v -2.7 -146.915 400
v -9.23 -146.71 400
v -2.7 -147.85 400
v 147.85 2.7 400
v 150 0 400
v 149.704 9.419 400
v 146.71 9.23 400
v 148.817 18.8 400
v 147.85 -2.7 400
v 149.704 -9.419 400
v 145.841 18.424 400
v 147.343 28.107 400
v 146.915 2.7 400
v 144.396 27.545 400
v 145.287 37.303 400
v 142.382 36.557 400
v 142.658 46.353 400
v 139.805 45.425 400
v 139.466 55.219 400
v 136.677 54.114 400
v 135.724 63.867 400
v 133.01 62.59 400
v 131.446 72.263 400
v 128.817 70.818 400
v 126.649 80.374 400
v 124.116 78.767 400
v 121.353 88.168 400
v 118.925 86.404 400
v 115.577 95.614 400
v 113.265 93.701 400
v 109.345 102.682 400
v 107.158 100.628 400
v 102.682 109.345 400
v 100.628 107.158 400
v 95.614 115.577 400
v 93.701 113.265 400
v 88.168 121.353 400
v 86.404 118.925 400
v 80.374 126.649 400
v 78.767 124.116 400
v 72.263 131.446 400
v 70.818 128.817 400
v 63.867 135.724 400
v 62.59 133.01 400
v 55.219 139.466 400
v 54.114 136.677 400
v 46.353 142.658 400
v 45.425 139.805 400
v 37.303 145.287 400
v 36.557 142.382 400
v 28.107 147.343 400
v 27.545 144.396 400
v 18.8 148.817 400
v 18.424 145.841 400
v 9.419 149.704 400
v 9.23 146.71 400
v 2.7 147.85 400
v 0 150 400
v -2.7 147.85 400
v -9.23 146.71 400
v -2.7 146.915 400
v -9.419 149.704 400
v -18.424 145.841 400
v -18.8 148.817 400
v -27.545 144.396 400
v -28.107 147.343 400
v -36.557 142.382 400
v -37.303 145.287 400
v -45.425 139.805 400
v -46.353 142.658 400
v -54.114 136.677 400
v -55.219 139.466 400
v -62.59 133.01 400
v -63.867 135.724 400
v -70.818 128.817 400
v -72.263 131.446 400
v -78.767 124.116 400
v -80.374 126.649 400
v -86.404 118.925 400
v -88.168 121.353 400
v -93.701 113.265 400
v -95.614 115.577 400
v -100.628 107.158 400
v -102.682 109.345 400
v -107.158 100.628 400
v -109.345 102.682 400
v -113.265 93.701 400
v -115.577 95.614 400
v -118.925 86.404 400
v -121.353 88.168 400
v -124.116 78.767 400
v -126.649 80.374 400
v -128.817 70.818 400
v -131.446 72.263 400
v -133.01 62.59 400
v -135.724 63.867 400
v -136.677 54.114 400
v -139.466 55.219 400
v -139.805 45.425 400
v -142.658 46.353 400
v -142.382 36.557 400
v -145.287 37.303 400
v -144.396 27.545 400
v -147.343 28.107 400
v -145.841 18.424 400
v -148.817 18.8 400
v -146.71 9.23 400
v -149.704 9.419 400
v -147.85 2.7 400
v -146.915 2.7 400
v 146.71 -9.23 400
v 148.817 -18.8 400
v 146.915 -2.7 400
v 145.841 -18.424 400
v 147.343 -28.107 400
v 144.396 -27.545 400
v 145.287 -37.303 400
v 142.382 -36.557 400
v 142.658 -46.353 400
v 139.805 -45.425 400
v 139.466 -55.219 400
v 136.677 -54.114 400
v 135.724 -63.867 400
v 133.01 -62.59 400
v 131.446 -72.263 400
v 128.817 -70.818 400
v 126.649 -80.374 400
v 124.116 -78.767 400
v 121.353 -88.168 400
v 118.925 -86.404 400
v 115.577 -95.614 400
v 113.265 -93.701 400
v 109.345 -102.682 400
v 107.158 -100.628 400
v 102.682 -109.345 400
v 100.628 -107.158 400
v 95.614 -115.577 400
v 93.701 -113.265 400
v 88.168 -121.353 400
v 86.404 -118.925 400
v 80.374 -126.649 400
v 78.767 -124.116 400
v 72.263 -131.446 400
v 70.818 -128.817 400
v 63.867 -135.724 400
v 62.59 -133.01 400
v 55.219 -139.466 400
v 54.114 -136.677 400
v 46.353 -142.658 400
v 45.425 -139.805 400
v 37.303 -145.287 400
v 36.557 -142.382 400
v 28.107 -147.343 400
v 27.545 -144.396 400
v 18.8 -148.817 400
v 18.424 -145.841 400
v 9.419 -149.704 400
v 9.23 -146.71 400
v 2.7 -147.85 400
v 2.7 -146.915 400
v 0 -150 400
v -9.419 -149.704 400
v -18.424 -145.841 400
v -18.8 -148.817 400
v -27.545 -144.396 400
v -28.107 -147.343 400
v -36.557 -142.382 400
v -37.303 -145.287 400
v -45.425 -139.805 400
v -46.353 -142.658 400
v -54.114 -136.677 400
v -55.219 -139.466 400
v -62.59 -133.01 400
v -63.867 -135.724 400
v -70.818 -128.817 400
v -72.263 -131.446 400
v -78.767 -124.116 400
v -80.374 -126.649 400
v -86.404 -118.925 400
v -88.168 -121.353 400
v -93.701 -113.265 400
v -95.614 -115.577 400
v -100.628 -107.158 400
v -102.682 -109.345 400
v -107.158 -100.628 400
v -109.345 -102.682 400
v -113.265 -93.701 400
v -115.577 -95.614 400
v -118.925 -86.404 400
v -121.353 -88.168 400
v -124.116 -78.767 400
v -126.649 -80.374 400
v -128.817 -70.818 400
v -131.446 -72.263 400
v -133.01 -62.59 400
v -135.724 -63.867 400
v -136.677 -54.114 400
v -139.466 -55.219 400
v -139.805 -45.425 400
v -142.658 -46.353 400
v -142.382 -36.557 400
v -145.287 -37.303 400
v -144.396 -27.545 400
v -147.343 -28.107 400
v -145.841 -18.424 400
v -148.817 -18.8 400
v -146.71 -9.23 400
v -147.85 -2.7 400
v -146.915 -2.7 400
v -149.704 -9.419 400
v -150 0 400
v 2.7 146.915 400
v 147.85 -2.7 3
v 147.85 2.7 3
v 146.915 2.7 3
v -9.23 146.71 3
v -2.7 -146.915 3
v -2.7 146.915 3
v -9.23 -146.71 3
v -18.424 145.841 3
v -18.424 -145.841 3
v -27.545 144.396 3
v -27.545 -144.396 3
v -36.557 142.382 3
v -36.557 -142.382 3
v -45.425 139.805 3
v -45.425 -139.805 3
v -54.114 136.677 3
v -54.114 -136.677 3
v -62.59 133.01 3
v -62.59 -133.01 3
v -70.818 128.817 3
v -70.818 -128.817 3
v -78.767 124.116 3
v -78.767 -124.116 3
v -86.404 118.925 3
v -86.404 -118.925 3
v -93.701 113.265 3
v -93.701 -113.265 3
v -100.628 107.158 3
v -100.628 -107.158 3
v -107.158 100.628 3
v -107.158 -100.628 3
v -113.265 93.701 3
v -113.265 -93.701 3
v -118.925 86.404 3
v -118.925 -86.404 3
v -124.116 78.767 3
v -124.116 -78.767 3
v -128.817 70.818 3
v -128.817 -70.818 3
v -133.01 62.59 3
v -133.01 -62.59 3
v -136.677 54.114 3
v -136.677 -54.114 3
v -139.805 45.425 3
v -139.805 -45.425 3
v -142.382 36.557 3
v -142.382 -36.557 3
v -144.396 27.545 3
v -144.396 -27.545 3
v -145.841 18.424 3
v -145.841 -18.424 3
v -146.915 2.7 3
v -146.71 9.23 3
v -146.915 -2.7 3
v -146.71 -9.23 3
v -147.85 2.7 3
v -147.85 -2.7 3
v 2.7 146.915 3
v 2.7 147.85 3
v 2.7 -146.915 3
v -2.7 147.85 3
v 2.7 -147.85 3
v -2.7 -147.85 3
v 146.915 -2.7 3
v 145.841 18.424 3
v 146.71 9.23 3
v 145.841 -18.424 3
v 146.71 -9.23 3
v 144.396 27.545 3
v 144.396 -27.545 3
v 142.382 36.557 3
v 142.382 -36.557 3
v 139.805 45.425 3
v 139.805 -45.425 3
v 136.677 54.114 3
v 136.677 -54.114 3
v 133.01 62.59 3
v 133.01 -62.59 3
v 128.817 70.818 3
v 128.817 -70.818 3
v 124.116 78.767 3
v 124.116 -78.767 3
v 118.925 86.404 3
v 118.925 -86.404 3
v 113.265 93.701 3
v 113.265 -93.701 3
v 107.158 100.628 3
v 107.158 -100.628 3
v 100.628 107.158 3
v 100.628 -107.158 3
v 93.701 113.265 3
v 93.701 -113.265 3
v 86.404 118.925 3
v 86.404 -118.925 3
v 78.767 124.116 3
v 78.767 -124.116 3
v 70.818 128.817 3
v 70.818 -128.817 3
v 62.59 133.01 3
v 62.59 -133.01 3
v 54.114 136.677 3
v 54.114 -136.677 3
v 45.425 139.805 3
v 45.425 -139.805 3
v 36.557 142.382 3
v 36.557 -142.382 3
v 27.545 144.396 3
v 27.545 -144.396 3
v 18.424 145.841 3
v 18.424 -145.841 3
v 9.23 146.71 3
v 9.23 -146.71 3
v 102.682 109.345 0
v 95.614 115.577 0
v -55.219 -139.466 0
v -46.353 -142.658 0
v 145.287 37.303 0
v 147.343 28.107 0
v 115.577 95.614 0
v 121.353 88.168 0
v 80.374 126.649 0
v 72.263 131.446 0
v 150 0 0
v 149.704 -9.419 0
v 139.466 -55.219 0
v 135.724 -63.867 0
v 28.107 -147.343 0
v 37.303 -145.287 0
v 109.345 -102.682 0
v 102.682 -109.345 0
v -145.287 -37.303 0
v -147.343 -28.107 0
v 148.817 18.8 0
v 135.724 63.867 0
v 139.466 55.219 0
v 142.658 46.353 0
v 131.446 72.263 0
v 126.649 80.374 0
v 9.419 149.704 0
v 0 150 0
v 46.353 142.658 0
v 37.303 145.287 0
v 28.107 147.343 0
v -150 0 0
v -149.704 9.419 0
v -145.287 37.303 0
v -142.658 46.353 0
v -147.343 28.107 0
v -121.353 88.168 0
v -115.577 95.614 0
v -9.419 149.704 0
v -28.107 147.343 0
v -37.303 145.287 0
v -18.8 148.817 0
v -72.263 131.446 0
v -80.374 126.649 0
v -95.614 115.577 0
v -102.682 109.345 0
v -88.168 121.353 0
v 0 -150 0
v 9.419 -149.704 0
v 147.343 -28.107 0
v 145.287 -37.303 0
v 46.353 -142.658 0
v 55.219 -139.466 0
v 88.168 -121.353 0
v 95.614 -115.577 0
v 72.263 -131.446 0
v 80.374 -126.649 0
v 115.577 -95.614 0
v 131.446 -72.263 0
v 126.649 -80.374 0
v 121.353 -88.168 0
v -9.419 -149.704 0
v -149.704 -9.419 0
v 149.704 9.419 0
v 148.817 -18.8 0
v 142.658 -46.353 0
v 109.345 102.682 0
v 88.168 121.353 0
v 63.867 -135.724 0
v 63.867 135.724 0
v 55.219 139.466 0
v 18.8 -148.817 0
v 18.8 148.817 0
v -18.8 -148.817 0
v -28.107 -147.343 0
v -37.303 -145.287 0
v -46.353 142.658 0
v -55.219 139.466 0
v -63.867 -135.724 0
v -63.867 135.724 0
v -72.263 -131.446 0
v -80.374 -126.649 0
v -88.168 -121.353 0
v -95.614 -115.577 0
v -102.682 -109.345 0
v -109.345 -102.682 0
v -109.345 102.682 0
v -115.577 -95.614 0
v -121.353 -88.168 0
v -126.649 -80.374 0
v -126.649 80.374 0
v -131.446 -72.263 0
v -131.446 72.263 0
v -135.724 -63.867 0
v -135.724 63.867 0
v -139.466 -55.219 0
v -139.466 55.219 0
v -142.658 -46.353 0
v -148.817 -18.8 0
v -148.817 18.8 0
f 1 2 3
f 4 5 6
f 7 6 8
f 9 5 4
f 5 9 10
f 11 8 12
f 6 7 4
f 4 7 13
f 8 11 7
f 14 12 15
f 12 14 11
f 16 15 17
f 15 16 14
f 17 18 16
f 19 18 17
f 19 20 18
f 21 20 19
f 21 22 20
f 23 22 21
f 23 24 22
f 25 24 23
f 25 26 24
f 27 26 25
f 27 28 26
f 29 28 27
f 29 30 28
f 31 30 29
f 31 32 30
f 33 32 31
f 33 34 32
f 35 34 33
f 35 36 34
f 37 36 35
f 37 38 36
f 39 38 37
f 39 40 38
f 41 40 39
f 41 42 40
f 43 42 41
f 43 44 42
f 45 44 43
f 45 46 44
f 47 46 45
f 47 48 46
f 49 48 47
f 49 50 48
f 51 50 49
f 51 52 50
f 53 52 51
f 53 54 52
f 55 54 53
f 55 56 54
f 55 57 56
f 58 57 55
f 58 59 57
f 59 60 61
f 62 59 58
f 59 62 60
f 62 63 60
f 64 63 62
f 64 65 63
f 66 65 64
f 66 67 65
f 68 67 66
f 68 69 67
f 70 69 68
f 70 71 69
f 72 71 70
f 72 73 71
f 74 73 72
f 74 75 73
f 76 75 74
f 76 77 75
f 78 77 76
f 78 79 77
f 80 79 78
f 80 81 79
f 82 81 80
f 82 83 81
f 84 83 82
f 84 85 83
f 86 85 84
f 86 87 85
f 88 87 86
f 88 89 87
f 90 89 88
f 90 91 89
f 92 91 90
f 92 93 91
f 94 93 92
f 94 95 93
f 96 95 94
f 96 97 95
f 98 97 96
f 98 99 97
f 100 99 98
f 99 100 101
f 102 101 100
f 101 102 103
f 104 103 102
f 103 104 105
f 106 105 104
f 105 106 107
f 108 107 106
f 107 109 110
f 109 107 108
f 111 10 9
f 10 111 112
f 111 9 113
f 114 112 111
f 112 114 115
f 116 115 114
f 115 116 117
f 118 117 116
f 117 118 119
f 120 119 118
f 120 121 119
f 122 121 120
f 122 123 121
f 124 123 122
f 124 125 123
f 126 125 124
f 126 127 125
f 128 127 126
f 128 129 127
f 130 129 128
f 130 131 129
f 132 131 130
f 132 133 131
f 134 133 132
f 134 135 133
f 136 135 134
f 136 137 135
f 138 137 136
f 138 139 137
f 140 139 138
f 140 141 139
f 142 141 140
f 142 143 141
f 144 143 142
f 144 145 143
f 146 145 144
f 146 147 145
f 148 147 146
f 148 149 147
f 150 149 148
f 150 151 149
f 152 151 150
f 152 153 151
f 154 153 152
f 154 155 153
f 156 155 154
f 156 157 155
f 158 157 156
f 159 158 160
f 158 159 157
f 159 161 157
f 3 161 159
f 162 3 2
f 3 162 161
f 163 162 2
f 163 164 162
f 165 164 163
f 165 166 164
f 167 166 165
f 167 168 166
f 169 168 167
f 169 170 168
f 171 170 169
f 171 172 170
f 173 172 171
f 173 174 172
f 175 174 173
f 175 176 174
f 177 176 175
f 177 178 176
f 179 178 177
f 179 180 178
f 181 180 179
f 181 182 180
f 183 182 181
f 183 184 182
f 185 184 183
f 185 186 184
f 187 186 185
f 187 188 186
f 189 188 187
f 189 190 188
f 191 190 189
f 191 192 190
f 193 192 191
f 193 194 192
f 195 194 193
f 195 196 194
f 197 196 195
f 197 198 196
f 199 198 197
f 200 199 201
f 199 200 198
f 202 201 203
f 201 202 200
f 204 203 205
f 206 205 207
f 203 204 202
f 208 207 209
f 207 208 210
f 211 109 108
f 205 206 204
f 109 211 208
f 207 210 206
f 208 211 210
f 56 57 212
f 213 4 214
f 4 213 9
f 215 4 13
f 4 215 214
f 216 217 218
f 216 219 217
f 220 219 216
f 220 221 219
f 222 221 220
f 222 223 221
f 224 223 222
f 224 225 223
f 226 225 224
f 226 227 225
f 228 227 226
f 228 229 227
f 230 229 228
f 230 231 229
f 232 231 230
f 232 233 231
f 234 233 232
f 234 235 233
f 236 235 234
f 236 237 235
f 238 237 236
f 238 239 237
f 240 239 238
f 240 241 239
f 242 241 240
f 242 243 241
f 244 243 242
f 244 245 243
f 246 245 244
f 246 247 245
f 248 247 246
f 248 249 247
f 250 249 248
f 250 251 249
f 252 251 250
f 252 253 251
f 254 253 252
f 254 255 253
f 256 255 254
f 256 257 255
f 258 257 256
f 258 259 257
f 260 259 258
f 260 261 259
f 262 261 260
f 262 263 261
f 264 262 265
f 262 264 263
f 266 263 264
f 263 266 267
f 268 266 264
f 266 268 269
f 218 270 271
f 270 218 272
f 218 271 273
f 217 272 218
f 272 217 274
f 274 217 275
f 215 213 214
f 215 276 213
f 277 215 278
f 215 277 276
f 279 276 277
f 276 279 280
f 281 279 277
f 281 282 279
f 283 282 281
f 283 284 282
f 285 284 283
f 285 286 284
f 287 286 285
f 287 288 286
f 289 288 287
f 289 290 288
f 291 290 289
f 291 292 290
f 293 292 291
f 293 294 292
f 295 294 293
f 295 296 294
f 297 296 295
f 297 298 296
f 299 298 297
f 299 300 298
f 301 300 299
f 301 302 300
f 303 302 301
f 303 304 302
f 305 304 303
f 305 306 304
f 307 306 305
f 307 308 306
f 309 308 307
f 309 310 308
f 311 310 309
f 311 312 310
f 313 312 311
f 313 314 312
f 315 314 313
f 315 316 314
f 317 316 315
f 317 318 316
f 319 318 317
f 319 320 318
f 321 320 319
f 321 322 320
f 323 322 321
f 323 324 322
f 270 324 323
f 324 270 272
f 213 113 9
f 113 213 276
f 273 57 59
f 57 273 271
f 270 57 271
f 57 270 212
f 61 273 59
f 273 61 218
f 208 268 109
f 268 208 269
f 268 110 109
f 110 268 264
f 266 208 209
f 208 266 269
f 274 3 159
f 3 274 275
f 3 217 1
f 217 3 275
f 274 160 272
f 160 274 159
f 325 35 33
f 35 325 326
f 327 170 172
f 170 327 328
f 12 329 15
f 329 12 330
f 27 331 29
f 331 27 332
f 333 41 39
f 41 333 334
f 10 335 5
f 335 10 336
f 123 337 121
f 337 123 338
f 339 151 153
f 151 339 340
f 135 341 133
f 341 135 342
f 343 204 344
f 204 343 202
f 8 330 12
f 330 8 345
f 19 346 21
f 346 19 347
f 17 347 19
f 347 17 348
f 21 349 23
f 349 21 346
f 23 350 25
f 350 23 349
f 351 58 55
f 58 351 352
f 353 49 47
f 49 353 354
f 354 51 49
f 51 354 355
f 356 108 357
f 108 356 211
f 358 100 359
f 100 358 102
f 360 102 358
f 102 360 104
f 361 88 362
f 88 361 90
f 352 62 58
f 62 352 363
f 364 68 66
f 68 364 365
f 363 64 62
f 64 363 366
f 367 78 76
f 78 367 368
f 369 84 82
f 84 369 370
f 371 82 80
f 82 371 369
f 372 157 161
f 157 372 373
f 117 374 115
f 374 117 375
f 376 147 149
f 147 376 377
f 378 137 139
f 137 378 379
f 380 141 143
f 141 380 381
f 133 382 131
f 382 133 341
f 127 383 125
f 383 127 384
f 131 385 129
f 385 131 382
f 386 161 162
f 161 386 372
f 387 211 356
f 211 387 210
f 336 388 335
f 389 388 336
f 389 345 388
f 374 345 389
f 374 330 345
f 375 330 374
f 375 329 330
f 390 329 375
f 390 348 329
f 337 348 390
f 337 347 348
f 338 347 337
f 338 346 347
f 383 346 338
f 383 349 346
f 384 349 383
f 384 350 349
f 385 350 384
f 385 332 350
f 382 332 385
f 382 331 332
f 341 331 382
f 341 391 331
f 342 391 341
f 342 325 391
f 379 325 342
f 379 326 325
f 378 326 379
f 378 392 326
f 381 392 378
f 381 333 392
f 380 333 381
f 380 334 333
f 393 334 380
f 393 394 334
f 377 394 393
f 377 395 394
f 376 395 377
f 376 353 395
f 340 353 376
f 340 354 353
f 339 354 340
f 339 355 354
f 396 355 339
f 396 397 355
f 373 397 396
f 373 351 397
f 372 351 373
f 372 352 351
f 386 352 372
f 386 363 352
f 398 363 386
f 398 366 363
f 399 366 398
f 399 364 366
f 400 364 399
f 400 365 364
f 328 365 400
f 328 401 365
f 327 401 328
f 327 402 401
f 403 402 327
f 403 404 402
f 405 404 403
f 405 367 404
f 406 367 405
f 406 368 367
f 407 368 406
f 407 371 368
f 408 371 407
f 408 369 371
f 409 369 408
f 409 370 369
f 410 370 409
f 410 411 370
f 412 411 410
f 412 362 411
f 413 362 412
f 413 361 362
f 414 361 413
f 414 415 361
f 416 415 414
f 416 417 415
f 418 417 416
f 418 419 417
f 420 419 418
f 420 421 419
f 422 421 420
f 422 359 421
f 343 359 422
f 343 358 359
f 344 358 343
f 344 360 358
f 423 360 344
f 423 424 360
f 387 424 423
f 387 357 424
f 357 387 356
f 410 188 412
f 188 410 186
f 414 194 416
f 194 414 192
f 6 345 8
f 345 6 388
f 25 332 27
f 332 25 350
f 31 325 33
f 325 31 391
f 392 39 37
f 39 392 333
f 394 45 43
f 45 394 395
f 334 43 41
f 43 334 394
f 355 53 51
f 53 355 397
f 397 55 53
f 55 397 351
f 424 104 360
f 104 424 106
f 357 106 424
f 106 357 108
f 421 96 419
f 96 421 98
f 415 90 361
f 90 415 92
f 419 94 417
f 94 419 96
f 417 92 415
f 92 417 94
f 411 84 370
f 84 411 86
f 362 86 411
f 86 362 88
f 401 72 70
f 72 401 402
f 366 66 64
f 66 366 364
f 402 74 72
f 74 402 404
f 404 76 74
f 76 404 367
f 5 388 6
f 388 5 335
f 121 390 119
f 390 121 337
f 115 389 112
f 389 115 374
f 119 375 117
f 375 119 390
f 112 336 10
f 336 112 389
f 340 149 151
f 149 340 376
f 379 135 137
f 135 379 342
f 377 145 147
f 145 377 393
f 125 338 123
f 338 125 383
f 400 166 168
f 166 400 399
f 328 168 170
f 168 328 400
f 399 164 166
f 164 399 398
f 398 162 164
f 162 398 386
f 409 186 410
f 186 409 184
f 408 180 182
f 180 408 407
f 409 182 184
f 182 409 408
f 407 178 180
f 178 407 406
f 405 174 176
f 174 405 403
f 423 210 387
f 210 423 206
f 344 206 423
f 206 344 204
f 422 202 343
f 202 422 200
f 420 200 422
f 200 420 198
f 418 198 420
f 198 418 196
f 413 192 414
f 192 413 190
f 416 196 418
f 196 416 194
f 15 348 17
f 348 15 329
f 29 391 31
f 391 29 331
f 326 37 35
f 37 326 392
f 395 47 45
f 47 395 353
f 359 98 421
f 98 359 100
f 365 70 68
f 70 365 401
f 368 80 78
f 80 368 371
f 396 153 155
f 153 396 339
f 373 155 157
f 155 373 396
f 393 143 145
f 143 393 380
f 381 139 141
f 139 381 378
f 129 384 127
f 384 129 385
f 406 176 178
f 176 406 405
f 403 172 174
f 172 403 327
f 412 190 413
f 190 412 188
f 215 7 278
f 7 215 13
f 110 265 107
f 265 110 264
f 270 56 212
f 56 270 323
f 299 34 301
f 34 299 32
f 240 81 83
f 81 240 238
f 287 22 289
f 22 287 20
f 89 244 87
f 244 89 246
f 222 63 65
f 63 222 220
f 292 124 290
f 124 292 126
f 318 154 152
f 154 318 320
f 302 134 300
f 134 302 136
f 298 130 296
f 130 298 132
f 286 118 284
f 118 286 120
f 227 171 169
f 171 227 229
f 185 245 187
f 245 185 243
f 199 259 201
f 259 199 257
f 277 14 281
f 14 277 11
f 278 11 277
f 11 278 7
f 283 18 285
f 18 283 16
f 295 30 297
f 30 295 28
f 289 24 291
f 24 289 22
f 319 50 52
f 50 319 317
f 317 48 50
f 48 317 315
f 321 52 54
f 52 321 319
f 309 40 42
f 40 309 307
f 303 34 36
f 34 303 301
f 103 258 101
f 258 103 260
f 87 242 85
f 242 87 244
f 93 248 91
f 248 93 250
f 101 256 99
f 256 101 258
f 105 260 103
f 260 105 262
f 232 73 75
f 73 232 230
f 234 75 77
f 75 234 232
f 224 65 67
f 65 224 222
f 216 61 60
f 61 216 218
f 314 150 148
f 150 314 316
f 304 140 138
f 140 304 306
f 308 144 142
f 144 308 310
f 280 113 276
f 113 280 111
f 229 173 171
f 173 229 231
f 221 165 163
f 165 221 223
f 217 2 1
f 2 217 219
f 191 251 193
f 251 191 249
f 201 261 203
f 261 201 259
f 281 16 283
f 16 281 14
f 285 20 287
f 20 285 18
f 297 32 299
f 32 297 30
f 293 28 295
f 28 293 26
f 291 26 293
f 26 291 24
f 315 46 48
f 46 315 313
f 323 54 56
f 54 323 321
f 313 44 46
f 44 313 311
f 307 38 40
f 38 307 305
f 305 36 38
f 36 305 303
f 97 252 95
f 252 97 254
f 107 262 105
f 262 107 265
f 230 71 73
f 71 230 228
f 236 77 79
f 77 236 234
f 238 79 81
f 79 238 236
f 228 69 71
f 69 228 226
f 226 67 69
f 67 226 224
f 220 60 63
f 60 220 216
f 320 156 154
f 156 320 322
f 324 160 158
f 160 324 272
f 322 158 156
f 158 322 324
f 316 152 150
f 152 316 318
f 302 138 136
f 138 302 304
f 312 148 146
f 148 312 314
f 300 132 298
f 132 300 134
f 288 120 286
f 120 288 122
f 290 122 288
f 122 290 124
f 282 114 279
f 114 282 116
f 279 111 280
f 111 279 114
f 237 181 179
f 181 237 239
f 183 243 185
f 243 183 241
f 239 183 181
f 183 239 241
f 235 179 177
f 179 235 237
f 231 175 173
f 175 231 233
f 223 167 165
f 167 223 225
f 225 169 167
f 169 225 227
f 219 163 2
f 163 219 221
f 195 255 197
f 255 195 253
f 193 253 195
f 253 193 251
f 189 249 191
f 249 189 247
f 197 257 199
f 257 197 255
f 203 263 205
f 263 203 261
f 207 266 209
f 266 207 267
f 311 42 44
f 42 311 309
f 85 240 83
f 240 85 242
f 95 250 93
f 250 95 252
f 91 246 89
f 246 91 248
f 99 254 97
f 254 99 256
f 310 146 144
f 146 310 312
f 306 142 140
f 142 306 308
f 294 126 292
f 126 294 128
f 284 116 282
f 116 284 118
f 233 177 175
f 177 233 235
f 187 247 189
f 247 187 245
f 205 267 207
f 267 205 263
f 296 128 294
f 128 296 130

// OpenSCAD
// file: ../config/parameters.scad
// In-Ground Worm Bin - Parameters
// Shared parameters for all components

// Outer shell dimensions
outer_diameter = 300; // mm
outer_height = 400;   // mm
outer_wall_thickness = 3; // mm

// Tolerance between shells
tolerance = 0.2; // mm - adjust based on your printer's accuracy

// Ridge and channel dimensions
ridge_width = 5; // mm
ridge_depth = outer_wall_thickness / 2; // Half the depth of outer shell wall
ridge_count = 4; // Number of ridges/channels around the circumference

// Inner shell dimensions (calculated from outer dimensions and tolerance)
inner_diameter = outer_diameter - 2 * (outer_wall_thickness + tolerance);
inner_height = outer_height - outer_wall_thickness; // Remove tolerance to make tops flush 
// main file
// In-Ground Worm Bin - Outer Shell
// Parameters are imported from parameters.scad

include <../config/parameters.scad>;

// Create a single channel
module channel(height) {
    // Position the channel on the inside wall of the outer shell
    translate([outer_diameter/2 - outer_wall_thickness, 0, (outer_height + outer_wall_thickness)/2])
        cube([ridge_depth + tolerance, ridge_width + tolerance*2, outer_height - outer_wall_thickness], center=true);
}

// Render the outer shell with channels
module outer_shell() {
    difference() {
        cylinder(h = outer_height, d = outer_diameter, center = false, $fn=100);
        
        // Hollow out the inside
        translate([0, 0, outer_wall_thickness])  // Leave bottom wall thickness
            cylinder(h = outer_height, d = outer_diameter - 2 * outer_wall_thickness, center = false, $fn=100);
        
        // Add channels
        for (i = [0:ridge_count-1]) {
            angle = i * 360 / ridge_count;
            rotate([0, 0, angle])
                channel(outer_height);
        }
    }
}

// Always render the outer shell when this file is processed directly
outer_shell(); 
